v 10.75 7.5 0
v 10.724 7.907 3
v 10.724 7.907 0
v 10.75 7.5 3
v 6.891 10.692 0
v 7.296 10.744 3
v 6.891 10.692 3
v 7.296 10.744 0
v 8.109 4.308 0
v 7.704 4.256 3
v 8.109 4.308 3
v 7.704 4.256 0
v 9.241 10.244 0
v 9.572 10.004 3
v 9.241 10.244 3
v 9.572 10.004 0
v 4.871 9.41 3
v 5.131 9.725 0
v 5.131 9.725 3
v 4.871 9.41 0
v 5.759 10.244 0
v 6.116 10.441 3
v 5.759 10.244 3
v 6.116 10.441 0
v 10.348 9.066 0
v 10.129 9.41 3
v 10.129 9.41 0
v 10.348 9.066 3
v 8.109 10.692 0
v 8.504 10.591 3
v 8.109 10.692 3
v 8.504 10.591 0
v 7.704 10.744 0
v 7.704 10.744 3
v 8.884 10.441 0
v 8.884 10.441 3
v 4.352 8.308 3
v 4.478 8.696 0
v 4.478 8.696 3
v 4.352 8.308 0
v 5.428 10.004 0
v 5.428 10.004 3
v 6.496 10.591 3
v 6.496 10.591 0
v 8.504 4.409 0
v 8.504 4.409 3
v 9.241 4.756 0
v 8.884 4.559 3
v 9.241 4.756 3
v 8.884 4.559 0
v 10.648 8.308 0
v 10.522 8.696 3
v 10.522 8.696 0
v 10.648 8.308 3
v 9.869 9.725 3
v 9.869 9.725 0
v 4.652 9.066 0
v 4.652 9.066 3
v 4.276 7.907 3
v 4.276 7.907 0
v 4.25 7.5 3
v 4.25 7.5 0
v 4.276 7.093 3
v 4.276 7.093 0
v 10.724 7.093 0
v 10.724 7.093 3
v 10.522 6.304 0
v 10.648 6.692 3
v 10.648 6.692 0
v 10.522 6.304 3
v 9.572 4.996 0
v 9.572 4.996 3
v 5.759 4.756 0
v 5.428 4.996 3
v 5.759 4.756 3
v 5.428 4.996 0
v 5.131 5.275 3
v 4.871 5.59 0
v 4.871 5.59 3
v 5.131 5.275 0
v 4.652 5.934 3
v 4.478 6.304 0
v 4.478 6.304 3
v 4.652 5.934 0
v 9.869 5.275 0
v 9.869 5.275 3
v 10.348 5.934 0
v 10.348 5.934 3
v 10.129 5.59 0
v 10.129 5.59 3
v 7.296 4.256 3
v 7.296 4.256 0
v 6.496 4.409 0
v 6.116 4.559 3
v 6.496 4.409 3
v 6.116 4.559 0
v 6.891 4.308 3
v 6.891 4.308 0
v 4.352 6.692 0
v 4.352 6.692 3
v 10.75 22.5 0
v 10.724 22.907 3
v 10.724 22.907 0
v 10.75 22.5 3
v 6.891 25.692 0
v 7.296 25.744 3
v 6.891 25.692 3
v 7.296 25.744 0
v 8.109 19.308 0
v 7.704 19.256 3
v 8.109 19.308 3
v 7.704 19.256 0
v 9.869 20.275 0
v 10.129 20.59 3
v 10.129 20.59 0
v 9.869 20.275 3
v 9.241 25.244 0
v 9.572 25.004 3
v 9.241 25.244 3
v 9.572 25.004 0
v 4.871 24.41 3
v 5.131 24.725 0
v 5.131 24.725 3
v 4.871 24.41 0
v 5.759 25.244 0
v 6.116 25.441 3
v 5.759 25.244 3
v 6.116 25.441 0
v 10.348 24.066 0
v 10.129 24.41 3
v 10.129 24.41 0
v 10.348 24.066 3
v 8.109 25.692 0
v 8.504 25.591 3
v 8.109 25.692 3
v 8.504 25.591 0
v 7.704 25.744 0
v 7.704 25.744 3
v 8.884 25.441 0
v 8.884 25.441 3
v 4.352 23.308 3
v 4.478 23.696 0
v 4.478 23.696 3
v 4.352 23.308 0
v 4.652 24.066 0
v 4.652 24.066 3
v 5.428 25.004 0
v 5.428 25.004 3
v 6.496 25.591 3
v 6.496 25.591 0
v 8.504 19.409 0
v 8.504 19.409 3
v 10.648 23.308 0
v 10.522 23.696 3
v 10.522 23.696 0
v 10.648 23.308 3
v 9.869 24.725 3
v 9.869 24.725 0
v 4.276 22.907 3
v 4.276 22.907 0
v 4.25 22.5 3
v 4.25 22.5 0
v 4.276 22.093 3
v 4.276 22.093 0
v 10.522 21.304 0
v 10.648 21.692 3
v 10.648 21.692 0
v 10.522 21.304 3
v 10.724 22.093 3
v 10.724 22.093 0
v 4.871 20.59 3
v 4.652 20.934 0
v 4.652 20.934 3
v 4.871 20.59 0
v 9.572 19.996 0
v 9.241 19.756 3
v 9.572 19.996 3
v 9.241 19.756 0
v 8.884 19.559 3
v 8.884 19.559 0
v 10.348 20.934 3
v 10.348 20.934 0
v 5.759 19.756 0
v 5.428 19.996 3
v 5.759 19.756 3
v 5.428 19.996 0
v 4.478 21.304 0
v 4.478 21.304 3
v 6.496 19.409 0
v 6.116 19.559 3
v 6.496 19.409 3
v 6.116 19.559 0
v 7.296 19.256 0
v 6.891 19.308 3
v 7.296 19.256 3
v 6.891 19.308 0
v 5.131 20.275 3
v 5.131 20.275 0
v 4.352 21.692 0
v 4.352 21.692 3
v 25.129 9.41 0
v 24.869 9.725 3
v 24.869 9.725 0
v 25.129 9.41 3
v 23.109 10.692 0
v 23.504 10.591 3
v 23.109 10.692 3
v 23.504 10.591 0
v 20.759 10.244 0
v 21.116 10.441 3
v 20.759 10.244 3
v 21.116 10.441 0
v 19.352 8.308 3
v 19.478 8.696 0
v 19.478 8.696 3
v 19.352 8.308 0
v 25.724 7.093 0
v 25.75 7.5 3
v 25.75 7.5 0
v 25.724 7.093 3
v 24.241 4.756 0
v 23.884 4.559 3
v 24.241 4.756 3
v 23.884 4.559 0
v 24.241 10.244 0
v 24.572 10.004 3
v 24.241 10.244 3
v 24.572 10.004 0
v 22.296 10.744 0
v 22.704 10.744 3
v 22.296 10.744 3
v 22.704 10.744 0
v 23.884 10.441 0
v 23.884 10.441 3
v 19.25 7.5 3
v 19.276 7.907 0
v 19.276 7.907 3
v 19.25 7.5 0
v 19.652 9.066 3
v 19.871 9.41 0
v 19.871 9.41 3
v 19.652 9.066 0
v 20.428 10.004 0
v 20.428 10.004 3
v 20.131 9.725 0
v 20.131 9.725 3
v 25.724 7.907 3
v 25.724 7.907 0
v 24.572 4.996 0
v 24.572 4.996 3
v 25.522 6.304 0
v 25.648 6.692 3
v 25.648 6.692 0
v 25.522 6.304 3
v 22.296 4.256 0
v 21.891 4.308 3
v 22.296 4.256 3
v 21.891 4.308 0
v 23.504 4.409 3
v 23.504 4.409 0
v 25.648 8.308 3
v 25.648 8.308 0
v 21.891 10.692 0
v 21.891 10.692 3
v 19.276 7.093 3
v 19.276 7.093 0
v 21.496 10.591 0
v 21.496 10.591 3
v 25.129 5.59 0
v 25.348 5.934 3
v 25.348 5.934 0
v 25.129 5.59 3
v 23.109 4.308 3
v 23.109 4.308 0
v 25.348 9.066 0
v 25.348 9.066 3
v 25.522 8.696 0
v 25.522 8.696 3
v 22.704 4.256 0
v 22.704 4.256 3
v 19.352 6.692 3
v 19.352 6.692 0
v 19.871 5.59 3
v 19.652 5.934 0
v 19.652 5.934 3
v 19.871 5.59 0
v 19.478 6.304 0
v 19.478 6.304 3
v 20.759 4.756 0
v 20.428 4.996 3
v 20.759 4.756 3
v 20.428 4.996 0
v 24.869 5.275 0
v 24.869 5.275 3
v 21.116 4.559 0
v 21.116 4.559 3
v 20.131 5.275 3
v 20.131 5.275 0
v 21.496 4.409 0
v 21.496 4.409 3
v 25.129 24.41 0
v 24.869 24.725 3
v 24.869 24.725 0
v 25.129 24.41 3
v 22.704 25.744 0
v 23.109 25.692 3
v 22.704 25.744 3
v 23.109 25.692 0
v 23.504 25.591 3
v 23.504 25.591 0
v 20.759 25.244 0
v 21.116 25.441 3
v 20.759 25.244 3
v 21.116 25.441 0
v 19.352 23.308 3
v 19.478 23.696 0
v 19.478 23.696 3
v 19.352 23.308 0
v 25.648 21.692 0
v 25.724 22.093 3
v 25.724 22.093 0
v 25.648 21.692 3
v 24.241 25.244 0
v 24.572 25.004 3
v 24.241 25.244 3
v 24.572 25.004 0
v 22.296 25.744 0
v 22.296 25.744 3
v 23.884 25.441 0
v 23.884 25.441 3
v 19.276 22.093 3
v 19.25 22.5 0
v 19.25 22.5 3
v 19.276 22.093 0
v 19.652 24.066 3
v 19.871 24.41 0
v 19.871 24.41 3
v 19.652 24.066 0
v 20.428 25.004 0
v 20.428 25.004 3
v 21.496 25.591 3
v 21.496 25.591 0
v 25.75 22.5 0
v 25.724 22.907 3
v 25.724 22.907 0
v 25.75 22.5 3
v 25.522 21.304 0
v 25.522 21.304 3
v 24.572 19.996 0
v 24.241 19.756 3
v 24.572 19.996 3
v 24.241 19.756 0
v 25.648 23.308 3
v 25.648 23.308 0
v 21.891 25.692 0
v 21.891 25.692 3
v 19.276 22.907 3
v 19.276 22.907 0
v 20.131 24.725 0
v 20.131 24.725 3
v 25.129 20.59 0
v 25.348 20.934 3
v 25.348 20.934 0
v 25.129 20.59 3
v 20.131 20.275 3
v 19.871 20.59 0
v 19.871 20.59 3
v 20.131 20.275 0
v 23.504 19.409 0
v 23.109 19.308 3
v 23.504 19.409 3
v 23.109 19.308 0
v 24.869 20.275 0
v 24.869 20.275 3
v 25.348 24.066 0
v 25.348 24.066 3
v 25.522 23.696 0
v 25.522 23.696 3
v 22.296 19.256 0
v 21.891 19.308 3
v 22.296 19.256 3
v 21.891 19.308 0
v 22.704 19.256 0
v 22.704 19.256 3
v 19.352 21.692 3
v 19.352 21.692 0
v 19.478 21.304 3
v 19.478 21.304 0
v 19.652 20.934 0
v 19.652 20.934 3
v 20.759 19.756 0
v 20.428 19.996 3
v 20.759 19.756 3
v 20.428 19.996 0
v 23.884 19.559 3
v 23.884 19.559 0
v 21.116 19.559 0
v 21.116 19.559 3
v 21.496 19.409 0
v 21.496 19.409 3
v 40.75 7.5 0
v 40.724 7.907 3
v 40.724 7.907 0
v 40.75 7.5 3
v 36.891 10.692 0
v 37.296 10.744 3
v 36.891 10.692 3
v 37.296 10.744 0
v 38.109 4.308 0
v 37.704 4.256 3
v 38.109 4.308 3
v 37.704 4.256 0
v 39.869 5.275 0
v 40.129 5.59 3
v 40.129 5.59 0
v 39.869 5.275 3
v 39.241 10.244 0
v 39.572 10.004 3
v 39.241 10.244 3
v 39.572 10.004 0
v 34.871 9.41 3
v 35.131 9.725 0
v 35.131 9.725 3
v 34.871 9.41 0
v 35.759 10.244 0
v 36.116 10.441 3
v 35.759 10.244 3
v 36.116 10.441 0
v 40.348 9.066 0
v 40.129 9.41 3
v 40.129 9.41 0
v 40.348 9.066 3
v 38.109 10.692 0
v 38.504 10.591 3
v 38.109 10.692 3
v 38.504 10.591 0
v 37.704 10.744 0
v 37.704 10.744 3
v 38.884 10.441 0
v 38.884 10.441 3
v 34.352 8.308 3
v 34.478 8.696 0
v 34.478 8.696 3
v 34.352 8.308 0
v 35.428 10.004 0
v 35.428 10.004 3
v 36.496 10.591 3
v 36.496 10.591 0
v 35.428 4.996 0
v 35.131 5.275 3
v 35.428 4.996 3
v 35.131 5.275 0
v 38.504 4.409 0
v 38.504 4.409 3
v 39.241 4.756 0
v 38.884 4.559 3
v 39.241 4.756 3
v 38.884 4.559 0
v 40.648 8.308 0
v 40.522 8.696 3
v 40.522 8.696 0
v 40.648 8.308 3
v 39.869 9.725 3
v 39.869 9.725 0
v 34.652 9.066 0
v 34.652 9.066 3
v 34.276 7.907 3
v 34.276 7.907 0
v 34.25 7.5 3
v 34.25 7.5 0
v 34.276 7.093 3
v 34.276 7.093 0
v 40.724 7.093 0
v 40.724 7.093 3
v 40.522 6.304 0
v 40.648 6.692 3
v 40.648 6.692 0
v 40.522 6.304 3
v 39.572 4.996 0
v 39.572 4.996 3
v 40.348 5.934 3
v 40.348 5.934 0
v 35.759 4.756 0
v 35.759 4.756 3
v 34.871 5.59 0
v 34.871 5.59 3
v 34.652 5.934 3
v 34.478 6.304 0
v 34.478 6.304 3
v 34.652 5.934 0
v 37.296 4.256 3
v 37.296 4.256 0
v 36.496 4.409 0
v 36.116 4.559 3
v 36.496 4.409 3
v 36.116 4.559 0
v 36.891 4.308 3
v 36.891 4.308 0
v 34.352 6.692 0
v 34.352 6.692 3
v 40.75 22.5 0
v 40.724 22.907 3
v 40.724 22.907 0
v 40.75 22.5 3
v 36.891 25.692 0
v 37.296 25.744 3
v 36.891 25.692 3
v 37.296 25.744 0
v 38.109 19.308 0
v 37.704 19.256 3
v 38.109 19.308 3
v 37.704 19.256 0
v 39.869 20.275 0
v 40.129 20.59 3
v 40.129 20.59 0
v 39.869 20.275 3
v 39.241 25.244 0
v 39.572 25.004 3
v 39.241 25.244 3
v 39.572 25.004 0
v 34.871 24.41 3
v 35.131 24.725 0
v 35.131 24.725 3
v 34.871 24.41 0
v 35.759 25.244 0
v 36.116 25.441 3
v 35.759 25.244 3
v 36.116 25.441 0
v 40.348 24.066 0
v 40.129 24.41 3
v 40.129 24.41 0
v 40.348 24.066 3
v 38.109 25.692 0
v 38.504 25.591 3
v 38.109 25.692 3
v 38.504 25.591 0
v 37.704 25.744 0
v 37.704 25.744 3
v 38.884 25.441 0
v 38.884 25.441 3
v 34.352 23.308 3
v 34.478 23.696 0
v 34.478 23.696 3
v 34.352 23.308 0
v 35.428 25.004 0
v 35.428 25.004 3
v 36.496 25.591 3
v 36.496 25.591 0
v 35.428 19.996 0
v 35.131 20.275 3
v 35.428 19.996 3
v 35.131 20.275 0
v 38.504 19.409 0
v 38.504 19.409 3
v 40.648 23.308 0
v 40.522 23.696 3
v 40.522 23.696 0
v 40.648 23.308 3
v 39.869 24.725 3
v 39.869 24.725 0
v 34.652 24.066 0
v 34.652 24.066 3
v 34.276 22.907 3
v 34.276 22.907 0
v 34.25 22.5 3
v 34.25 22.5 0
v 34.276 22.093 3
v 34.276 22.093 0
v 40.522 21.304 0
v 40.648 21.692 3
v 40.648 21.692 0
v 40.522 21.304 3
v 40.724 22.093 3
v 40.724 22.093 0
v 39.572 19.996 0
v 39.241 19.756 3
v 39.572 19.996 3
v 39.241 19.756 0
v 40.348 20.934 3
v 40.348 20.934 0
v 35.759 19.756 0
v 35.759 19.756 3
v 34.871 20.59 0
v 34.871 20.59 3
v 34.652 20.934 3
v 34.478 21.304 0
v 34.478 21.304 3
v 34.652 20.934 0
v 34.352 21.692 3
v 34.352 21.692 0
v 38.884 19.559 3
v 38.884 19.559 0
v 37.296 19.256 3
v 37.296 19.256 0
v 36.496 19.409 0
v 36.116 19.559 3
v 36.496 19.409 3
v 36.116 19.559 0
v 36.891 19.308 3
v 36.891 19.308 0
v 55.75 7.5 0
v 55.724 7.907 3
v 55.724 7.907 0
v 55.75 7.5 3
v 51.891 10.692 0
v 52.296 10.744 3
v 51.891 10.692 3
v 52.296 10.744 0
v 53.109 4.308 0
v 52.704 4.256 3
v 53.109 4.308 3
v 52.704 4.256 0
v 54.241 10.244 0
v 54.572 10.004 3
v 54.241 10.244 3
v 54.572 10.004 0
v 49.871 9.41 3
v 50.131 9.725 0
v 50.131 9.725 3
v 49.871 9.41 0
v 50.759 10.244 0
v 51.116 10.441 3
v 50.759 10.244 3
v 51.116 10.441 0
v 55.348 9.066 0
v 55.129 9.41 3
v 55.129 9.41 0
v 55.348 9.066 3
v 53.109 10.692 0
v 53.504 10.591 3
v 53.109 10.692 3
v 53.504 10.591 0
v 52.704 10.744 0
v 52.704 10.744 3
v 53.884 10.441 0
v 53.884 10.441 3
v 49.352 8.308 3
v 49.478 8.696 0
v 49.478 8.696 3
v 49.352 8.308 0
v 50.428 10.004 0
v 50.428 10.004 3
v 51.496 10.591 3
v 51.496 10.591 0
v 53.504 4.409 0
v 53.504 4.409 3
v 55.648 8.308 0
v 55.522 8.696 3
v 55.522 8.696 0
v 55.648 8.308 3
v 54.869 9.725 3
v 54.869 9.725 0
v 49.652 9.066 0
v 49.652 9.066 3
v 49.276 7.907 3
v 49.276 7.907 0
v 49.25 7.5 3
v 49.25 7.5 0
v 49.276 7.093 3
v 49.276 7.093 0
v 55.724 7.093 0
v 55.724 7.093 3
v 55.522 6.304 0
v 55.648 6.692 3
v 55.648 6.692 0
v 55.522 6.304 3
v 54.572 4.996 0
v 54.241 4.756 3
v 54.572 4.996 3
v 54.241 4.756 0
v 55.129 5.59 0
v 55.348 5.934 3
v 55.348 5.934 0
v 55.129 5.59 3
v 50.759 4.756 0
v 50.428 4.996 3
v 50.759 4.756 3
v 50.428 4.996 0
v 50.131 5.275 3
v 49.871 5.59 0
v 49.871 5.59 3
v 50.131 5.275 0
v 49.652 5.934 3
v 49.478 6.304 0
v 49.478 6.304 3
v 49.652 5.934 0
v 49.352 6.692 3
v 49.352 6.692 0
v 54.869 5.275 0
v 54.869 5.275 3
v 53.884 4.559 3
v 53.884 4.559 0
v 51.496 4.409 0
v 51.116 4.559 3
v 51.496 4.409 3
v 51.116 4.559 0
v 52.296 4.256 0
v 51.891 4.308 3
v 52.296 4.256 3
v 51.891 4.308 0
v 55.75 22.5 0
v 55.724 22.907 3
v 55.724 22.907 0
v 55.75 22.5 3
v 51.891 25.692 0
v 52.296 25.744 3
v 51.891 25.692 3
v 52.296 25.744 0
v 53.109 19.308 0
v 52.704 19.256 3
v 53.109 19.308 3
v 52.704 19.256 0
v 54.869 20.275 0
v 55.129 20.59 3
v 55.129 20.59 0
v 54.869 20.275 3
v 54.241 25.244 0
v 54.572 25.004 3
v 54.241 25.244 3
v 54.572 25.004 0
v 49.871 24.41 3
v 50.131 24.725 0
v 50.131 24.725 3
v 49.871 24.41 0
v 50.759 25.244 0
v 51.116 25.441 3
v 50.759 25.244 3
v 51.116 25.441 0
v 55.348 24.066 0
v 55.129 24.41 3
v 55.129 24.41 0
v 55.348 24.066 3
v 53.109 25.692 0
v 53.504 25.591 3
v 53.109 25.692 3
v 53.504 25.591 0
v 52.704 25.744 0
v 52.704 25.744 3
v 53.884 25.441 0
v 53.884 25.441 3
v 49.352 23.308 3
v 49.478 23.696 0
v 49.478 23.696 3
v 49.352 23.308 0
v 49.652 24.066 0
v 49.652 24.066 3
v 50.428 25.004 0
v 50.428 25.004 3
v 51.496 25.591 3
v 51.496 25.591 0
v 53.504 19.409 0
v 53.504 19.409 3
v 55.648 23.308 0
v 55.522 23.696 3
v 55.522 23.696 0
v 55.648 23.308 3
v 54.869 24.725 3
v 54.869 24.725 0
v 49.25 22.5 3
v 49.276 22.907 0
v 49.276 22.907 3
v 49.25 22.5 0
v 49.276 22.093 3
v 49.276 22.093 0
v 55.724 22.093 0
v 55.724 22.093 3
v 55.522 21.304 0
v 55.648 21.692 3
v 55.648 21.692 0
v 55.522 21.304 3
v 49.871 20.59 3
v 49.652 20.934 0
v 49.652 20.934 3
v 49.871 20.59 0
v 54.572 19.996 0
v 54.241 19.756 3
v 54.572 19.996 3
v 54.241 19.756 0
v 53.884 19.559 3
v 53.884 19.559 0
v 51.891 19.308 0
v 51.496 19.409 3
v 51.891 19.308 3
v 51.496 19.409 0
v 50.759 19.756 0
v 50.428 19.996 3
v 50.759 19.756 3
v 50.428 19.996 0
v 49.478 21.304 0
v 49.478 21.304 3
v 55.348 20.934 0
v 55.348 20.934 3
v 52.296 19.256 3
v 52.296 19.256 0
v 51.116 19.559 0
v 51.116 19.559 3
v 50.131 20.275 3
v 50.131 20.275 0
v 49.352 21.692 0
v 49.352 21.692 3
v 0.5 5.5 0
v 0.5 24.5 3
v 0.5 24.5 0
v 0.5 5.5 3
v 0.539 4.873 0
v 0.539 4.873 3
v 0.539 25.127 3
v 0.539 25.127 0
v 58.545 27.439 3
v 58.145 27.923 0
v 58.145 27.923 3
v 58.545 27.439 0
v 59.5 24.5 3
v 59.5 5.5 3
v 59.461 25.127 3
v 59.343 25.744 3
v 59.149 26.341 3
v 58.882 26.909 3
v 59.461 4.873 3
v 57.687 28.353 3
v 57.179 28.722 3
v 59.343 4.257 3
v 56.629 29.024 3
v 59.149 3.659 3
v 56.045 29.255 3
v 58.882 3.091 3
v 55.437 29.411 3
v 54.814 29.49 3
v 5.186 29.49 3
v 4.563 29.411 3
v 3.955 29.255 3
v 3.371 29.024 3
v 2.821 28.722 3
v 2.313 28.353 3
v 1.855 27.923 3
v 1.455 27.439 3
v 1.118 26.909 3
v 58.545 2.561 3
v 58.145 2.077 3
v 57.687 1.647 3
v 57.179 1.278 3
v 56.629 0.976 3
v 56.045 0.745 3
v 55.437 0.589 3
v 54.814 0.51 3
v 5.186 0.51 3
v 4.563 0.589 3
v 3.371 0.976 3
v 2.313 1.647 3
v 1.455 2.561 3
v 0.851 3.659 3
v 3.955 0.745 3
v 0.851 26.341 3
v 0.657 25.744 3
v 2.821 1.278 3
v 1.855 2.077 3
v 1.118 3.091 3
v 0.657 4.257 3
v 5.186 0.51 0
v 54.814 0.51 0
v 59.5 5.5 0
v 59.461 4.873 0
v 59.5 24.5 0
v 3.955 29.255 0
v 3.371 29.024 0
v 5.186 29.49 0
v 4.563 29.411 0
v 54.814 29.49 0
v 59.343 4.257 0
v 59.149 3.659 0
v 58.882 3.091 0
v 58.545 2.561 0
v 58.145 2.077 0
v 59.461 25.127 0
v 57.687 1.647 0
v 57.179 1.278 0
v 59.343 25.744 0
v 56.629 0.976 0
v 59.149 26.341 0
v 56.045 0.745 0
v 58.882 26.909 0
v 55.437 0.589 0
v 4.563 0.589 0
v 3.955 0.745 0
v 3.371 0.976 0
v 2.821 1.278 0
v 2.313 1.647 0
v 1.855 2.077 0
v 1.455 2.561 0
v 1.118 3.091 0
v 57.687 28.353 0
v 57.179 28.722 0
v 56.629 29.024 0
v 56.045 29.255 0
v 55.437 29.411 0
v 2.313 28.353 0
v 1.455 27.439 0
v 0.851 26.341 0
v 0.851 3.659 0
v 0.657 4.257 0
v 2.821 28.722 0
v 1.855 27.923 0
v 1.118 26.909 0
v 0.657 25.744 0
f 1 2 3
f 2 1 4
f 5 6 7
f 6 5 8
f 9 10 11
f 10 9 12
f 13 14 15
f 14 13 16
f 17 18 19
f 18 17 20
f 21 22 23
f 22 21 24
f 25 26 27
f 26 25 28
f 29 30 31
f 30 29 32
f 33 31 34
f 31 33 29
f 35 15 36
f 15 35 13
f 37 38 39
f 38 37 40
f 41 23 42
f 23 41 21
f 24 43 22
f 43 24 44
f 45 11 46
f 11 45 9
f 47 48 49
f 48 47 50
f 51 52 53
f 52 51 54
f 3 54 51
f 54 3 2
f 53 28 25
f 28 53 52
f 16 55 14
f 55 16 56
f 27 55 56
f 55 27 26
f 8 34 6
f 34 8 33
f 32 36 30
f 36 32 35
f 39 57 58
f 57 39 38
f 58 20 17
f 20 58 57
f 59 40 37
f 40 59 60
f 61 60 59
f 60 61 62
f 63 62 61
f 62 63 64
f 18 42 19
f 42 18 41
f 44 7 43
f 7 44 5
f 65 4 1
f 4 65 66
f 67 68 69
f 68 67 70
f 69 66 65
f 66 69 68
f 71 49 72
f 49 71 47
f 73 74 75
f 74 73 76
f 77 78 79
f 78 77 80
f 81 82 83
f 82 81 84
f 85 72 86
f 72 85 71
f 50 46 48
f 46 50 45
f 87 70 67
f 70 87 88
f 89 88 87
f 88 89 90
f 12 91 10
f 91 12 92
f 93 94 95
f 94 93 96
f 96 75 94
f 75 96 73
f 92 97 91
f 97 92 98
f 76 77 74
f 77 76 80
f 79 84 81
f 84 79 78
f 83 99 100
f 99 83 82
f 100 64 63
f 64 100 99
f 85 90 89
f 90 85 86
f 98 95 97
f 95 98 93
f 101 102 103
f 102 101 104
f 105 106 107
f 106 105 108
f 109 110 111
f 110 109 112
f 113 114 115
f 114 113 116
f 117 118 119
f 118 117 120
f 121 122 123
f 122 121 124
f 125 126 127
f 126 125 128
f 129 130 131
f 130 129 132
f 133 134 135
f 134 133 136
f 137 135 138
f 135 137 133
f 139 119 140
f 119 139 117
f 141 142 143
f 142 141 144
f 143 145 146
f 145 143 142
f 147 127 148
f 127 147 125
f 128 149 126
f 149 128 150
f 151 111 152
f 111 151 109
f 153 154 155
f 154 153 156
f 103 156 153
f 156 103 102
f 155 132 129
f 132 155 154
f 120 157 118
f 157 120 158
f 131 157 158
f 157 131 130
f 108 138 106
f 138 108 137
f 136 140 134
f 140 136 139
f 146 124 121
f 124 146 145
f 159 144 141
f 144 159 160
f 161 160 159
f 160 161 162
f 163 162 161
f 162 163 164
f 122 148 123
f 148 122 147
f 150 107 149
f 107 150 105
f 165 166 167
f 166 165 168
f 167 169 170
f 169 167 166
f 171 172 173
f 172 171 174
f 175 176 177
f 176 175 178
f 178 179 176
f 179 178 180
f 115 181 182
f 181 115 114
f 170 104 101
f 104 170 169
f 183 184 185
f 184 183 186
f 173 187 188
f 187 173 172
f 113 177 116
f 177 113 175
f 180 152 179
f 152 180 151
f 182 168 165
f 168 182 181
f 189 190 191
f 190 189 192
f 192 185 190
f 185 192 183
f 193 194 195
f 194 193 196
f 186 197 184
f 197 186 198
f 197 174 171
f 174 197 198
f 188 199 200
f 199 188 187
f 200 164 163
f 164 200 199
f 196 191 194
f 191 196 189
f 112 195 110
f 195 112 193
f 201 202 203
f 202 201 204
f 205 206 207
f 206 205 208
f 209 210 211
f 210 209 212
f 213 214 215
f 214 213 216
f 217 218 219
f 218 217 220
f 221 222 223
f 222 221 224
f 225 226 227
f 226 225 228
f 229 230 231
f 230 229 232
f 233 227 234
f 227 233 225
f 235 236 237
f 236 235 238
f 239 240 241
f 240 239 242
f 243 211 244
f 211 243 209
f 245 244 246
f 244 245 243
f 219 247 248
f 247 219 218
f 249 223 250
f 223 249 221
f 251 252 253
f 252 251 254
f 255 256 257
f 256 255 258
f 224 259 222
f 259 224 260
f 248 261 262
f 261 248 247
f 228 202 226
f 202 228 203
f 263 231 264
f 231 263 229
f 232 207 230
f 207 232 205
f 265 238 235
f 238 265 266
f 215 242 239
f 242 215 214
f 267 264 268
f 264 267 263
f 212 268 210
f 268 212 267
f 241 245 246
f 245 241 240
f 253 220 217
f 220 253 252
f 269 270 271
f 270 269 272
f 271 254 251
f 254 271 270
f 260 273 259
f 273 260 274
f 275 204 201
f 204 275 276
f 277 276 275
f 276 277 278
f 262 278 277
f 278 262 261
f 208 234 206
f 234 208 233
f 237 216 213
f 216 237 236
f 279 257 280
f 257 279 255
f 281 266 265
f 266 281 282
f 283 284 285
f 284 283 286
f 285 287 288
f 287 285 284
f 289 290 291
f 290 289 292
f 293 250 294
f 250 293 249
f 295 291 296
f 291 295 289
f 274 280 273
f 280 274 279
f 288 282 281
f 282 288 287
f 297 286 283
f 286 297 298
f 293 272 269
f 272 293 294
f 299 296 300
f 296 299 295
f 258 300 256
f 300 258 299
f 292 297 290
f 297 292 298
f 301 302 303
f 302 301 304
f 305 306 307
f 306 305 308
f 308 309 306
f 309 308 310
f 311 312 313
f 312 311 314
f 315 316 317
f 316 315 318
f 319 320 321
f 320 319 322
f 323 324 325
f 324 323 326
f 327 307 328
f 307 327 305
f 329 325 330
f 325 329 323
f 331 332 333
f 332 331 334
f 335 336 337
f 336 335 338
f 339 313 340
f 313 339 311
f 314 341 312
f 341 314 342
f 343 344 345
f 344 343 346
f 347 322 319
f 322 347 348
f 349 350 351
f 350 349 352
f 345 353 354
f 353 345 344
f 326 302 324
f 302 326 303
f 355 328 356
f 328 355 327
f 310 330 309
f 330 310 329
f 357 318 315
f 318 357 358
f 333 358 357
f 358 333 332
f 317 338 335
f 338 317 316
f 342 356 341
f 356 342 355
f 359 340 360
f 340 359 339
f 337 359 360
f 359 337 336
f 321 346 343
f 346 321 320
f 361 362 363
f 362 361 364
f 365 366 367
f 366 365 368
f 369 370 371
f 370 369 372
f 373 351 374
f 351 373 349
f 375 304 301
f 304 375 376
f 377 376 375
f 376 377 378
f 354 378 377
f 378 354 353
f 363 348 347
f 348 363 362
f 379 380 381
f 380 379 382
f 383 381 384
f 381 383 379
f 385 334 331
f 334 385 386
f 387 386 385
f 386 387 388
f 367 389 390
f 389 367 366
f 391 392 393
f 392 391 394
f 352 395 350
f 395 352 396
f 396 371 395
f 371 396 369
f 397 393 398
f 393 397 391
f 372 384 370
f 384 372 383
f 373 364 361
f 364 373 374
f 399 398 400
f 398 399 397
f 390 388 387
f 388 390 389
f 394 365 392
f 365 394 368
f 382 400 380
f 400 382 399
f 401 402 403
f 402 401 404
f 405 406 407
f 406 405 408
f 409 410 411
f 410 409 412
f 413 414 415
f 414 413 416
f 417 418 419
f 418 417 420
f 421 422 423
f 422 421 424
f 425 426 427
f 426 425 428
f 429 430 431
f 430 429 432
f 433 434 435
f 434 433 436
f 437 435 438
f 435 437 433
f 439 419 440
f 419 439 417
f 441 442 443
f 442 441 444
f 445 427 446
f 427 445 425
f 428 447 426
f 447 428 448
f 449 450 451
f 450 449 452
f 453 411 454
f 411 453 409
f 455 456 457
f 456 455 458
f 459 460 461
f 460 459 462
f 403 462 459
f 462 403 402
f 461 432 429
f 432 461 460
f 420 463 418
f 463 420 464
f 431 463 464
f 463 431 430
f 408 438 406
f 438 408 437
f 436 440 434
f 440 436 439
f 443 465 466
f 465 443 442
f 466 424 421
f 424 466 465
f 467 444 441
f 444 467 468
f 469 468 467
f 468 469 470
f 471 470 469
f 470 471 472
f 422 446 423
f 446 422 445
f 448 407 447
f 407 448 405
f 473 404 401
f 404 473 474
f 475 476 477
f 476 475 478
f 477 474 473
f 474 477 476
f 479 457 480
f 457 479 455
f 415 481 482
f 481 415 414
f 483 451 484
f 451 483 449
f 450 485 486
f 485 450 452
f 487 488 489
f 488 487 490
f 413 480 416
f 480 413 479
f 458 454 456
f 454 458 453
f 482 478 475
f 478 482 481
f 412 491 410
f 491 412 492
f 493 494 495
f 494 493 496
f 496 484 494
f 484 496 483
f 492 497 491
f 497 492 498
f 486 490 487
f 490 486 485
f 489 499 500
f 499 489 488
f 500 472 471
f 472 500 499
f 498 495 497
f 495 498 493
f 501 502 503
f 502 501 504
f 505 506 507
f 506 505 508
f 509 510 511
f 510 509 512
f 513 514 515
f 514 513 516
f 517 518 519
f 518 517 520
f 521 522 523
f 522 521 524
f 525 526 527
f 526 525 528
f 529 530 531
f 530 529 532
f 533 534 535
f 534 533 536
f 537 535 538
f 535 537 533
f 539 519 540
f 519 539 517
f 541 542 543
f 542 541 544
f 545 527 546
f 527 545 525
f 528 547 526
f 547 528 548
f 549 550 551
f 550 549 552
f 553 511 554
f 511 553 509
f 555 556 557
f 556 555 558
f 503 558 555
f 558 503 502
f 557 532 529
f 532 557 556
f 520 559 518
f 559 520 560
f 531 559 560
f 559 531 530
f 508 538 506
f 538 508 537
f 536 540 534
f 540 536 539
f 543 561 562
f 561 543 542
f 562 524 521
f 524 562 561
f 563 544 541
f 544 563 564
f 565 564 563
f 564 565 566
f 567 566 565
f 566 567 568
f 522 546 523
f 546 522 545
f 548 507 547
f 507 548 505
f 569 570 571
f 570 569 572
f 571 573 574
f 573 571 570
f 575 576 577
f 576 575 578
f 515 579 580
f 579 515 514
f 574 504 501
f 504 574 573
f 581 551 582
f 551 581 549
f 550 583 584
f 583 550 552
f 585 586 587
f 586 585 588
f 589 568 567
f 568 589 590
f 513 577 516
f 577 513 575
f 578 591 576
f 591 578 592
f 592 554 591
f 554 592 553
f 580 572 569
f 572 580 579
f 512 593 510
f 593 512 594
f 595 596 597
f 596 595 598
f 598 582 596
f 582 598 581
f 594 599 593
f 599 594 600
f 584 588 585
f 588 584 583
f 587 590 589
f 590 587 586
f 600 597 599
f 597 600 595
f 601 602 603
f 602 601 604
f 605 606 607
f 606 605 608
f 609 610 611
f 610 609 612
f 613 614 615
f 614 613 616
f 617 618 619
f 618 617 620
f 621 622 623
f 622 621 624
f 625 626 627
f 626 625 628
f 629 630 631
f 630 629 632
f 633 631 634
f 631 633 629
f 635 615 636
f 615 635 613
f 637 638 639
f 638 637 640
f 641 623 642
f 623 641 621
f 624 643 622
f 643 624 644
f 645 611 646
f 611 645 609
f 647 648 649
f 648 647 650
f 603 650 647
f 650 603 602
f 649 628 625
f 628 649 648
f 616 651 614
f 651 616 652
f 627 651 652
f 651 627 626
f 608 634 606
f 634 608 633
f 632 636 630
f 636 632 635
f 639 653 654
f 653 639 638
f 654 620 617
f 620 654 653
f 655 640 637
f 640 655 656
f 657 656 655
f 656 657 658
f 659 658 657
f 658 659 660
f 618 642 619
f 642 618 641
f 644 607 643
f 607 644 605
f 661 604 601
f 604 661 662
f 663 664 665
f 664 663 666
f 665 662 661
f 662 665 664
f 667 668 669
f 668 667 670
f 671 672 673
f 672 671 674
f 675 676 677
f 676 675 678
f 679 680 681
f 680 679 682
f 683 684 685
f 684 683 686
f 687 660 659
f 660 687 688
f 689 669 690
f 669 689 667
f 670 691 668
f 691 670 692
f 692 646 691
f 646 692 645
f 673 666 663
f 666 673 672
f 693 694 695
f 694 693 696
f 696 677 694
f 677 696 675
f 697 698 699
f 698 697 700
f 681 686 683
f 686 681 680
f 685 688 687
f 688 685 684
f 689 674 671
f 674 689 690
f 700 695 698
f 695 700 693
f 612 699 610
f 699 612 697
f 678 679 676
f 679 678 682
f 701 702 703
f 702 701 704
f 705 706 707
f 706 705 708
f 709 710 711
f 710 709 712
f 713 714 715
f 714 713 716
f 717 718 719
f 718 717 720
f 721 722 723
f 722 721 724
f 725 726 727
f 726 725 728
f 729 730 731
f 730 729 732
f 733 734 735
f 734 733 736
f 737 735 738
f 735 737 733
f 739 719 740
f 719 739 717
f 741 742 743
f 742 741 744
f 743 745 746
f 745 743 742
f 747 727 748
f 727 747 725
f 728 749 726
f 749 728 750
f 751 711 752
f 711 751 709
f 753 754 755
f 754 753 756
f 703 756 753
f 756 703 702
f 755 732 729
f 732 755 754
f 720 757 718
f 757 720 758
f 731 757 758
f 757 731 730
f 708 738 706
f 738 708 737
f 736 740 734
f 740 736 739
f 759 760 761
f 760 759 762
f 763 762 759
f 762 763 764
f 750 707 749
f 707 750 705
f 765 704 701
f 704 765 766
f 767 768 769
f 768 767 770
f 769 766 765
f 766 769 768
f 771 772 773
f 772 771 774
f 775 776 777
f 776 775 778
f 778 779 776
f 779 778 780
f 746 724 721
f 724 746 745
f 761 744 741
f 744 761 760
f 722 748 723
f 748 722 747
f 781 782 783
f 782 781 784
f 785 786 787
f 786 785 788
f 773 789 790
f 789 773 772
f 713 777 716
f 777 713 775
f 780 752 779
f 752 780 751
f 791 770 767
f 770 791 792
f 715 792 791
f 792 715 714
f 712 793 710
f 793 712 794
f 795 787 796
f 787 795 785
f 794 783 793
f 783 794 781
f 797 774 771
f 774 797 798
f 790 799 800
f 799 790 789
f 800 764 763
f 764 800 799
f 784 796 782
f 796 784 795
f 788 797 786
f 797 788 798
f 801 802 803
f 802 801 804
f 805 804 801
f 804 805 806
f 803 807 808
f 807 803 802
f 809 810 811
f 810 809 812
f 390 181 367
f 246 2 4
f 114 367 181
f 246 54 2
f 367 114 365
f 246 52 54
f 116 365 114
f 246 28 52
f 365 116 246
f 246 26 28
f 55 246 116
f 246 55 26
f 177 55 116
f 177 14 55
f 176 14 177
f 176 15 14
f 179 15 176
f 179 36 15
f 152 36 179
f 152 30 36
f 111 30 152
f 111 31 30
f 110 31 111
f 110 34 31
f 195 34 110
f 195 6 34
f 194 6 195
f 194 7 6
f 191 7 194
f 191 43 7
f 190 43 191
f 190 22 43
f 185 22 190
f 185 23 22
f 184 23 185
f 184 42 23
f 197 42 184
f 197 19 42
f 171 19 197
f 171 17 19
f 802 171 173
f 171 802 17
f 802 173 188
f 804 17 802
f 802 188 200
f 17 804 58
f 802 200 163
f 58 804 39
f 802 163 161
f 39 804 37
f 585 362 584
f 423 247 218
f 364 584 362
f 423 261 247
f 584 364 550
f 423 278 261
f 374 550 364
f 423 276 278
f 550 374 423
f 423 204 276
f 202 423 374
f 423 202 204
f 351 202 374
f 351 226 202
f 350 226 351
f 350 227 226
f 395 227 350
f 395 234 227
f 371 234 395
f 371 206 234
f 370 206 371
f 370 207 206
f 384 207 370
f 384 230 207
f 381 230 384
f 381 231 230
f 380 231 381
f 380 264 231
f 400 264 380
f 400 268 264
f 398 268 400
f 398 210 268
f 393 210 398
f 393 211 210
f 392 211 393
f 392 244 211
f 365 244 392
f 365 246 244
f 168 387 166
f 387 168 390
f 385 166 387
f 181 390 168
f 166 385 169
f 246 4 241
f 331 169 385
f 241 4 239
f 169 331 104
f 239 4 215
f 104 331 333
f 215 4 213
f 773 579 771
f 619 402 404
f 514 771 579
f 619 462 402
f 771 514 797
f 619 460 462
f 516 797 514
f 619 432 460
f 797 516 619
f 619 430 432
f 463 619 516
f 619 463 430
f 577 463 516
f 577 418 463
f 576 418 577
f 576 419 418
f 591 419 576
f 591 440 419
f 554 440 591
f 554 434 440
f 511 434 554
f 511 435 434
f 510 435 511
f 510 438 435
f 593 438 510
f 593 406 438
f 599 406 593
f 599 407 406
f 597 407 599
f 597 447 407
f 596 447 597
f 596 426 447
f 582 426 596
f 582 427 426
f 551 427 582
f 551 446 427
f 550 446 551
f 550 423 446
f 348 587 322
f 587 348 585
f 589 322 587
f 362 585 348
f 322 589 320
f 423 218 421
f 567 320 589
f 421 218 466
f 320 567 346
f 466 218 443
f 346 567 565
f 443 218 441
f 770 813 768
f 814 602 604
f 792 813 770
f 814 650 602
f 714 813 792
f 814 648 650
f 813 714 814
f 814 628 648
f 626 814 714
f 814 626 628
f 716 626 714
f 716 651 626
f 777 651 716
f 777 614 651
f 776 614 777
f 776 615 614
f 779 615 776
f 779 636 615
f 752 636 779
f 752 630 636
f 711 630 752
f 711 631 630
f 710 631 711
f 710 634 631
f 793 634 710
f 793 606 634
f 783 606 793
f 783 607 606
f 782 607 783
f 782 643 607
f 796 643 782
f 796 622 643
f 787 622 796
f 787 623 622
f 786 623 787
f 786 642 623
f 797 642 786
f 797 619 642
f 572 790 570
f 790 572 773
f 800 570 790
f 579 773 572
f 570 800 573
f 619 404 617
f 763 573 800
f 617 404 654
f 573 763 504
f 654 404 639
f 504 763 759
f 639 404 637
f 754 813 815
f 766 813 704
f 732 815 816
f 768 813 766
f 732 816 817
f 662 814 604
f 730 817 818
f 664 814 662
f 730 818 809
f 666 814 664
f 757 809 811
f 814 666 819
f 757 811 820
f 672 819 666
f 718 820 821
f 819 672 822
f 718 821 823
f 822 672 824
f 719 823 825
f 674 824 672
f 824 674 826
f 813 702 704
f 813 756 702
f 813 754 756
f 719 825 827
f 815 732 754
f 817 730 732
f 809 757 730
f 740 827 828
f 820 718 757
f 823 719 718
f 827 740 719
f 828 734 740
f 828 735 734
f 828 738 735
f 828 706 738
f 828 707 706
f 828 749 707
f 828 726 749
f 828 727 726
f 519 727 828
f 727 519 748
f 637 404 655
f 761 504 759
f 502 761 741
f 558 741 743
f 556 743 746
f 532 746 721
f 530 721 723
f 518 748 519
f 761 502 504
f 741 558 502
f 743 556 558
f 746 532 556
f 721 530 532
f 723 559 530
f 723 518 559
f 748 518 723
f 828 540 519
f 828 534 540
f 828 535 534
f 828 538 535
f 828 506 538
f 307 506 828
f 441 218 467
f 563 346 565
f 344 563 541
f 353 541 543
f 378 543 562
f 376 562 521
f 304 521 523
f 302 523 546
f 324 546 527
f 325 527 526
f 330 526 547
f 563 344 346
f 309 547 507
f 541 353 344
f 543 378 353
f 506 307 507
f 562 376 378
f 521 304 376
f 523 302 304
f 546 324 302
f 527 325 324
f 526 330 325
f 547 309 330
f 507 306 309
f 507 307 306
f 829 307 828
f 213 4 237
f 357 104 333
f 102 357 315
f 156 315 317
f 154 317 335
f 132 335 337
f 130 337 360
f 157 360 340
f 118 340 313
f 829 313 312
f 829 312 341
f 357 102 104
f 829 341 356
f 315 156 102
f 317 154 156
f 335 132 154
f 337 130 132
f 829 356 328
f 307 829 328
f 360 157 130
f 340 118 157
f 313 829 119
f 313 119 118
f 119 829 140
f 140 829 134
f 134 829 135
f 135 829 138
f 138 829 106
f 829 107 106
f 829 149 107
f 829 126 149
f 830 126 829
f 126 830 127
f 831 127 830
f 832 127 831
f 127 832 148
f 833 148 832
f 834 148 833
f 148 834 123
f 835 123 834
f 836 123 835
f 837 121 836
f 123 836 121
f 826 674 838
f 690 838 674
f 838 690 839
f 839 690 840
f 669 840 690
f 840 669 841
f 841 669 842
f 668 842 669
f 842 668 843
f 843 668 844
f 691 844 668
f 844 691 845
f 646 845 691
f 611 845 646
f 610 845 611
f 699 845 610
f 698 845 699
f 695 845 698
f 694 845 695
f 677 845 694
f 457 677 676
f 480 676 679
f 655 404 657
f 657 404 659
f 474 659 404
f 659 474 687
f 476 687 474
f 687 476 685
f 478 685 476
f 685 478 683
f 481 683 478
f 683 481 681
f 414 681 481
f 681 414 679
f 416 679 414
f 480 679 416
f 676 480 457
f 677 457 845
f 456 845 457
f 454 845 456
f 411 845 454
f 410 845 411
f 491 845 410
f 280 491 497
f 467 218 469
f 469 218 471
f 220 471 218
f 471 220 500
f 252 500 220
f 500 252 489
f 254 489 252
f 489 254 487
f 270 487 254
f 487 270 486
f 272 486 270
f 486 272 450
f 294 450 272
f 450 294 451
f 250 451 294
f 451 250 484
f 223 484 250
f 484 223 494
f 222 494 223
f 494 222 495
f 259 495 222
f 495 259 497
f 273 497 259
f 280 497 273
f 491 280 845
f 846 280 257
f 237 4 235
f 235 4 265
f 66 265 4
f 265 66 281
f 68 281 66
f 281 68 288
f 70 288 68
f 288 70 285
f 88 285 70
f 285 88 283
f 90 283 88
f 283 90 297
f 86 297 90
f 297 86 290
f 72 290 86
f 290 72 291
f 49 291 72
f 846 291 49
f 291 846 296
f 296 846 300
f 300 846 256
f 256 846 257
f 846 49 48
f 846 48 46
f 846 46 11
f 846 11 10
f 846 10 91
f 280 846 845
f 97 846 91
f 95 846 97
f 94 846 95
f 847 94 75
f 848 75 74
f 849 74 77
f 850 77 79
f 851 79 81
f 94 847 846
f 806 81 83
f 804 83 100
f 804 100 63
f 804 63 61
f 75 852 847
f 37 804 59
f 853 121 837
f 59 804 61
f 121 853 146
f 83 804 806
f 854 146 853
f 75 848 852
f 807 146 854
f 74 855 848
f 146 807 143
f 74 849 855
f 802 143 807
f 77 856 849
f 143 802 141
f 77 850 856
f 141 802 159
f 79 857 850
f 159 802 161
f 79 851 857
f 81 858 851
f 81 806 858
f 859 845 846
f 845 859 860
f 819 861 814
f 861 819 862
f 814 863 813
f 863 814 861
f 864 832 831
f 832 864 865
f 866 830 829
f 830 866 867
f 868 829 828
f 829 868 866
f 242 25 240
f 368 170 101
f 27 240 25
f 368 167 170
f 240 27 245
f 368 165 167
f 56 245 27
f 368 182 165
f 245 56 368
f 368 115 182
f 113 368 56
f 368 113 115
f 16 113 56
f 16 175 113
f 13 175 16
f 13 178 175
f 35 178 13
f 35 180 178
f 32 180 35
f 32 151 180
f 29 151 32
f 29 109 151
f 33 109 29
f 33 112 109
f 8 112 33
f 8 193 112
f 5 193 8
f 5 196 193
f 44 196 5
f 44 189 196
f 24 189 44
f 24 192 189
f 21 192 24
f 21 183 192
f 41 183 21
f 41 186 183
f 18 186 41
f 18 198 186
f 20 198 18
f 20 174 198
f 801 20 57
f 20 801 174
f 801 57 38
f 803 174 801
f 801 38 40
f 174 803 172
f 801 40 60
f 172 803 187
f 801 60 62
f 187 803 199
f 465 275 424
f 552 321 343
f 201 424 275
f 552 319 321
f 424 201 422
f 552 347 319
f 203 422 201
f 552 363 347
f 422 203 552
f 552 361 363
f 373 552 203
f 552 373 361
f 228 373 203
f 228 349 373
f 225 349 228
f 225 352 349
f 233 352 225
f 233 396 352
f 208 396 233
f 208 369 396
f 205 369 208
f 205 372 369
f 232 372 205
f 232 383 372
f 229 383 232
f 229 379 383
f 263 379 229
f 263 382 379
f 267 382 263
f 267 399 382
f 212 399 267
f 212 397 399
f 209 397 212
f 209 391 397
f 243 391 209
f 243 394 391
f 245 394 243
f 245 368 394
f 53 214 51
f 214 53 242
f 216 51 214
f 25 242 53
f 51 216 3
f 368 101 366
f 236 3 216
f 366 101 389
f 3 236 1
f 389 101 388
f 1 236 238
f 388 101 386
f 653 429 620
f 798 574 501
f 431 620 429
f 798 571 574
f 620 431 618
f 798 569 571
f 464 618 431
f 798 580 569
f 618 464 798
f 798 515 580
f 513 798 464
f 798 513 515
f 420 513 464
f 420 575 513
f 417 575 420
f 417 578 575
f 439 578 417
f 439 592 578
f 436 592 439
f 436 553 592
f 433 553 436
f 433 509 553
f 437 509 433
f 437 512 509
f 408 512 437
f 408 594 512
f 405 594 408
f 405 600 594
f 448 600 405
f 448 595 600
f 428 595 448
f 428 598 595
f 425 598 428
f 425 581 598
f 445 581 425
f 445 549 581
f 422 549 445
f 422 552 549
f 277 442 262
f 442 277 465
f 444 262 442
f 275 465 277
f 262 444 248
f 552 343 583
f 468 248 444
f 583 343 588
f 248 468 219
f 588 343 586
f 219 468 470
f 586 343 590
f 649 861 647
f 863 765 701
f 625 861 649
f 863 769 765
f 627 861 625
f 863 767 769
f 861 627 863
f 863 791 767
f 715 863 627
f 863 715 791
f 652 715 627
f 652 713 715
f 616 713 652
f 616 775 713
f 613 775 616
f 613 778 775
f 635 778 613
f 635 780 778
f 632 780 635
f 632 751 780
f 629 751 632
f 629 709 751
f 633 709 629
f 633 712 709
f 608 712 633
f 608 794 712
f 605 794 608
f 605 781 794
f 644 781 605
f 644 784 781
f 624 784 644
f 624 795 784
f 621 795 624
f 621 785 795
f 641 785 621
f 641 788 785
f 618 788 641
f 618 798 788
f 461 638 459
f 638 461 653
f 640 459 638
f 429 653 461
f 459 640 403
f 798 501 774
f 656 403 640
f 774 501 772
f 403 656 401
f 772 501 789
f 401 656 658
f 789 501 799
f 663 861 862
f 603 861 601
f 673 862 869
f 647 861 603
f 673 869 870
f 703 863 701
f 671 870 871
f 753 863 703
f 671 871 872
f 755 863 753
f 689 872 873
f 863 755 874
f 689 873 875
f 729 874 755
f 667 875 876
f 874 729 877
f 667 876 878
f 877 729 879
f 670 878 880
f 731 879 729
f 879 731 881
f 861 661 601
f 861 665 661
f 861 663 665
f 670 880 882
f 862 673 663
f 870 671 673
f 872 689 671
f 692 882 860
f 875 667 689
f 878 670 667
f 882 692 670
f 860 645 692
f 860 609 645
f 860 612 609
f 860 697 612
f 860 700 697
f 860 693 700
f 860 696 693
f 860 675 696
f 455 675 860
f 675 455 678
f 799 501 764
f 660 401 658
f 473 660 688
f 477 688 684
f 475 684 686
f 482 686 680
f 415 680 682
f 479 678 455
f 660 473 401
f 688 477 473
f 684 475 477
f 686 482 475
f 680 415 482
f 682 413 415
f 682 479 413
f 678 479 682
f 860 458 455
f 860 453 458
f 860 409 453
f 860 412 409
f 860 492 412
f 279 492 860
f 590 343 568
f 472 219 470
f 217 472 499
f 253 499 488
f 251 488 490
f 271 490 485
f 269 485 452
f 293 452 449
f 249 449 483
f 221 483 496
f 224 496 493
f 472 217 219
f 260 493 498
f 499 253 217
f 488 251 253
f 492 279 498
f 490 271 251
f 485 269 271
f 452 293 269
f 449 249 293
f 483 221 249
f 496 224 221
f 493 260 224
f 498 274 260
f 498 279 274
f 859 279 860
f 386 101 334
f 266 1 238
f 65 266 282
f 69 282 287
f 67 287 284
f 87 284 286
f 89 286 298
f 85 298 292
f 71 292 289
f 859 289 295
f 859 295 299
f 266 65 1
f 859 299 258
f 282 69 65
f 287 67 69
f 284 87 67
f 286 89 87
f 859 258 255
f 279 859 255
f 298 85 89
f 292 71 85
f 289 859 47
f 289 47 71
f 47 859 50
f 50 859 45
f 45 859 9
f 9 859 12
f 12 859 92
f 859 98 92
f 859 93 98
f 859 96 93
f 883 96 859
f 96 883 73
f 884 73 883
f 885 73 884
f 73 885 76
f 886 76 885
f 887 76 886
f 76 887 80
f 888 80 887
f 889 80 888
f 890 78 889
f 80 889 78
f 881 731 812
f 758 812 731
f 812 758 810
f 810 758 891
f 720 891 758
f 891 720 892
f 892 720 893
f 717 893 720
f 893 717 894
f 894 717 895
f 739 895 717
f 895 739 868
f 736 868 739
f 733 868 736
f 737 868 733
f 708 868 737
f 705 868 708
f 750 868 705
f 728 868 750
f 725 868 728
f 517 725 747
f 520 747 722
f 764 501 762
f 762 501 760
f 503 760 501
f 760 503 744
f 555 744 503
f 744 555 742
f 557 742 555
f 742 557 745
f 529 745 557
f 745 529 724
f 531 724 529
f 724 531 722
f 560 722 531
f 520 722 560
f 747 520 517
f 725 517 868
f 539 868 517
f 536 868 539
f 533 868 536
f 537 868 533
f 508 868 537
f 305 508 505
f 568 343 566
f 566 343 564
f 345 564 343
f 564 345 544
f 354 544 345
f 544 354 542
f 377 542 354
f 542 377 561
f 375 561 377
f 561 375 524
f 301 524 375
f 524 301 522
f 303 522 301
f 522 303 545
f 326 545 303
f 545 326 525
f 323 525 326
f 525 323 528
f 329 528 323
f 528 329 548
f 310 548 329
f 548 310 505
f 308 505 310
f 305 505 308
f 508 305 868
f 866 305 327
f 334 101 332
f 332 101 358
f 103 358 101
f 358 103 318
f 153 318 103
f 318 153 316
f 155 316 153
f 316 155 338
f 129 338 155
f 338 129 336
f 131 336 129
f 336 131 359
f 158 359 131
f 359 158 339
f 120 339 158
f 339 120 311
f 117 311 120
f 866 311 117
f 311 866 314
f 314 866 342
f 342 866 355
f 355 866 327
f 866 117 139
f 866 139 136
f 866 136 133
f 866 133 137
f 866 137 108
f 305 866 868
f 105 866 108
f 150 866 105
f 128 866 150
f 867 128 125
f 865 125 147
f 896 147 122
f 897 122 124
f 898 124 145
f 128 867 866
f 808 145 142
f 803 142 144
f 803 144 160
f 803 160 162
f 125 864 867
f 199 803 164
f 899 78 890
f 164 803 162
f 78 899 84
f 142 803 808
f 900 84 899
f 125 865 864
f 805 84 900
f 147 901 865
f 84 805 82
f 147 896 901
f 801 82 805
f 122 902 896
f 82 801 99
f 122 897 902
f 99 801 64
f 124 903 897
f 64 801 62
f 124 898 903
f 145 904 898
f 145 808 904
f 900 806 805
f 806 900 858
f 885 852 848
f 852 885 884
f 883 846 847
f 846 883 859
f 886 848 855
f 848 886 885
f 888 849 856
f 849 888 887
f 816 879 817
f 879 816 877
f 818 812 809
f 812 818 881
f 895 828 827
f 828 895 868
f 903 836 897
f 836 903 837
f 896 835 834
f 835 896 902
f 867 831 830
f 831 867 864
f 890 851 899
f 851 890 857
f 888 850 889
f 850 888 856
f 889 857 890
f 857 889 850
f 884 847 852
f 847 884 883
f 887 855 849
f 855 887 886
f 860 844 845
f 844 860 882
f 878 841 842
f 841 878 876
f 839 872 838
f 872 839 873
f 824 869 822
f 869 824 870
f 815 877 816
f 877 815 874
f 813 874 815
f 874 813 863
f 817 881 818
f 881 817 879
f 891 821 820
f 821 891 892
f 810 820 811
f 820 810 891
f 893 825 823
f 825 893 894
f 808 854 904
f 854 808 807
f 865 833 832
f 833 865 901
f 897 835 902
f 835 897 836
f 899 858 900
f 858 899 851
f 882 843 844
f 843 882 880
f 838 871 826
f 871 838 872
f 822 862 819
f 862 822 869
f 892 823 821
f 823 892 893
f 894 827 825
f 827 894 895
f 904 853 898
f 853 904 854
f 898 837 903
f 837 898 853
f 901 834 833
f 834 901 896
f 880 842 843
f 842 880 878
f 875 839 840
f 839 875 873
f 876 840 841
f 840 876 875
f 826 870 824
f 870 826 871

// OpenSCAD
// Generated by SolidPython 1.1.3 on 2023-01-30 13:28:22
$fn = 50;


difference() {
	union() {
		translate(v = [30.0000000000, 15.0000000000, 0]) {
			rotate(a = [0, 0, 0]) {
				hull() {
					translate(v = [-24.5000000000, 9.5000000000, 0]) {
						rotate(a = [0, 0, 0]) {
							translate(v = [0, 0, 0]) {
								rotate(a = [0, 0, 0]) {
									cylinder(h = 3, r = 5);
								}
							}
						}
					}
					translate(v = [24.5000000000, 9.5000000000, 0]) {
						rotate(a = [0, 0, 0]) {
							translate(v = [0, 0, 0]) {
								rotate(a = [0, 0, 0]) {
									cylinder(h = 3, r = 5);
								}
							}
						}
					}
					translate(v = [-24.5000000000, -9.5000000000, 0]) {
						rotate(a = [0, 0, 0]) {
							translate(v = [0, 0, 0]) {
								rotate(a = [0, 0, 0]) {
									cylinder(h = 3, r = 5);
								}
							}
						}
					}
					translate(v = [24.5000000000, -9.5000000000, 0]) {
						rotate(a = [0, 0, 0]) {
							translate(v = [0, 0, 0]) {
								rotate(a = [0, 0, 0]) {
									cylinder(h = 3, r = 5);
								}
							}
						}
					}
				}
			}
		}
	}
	union() {
		translate(v = [7.5000000000, 7.5000000000, 0]) {
			rotate(a = [0, 0, 0]) {
				translate(v = [0, 0, -50]) {
					rotate(a = [0, 0, 0]) {
						cylinder(h = 100, r = 3.2500000000);
					}
				}
			}
		}
		translate(v = [7.5000000000, 22.5000000000, 0]) {
			rotate(a = [0, 0, 0]) {
				translate(v = [0, 0, -50]) {
					rotate(a = [0, 0, 0]) {
						cylinder(h = 100, r = 3.2500000000);
					}
				}
			}
		}
		translate(v = [22.5000000000, 7.5000000000, 0]) {
			rotate(a = [0, 0, 0]) {
				translate(v = [0, 0, -50]) {
					rotate(a = [0, 0, 0]) {
						cylinder(h = 100, r = 3.2500000000);
					}
				}
			}
		}
		translate(v = [22.5000000000, 22.5000000000, 0]) {
			rotate(a = [0, 0, 0]) {
				translate(v = [0, 0, -50]) {
					rotate(a = [0, 0, 0]) {
						cylinder(h = 100, r = 3.2500000000);
					}
				}
			}
		}
		translate(v = [37.5000000000, 7.5000000000, 0]) {
			rotate(a = [0, 0, 0]) {
				translate(v = [0, 0, -50]) {
					rotate(a = [0, 0, 0]) {
						cylinder(h = 100, r = 3.2500000000);
					}
				}
			}
		}
		translate(v = [37.5000000000, 22.5000000000, 0]) {
			rotate(a = [0, 0, 0]) {
				translate(v = [0, 0, -50]) {
					rotate(a = [0, 0, 0]) {
						cylinder(h = 100, r = 3.2500000000);
					}
				}
			}
		}
		translate(v = [52.5000000000, 7.5000000000, 0]) {
			rotate(a = [0, 0, 0]) {
				translate(v = [0, 0, -50]) {
					rotate(a = [0, 0, 0]) {
						cylinder(h = 100, r = 3.2500000000);
					}
				}
			}
		}
		translate(v = [52.5000000000, 22.5000000000, 0]) {
			rotate(a = [0, 0, 0]) {
				translate(v = [0, 0, -50]) {
					rotate(a = [0, 0, 0]) {
						cylinder(h = 100, r = 3.2500000000);
					}
				}
			}
		}
	}
}
/***********************************************
*********      SolidPython code:      **********
************************************************
 
from solid import *
import os
import subprocess

import oomB

import opsc_library_gen

mode = "laser"
#mode = "3d_print"

defined_objects = {}

radius_dict = {}
countersunk_dict = {}


def set_mode(m):
    global mode
    mode = m
    radius_dict['M6'] = 6.5/2
    radius_dict['M3'] = 3.3/2
    if mode == "laser":
        radius_dict['M6'] = 6/2
        radius_dict['M3'] = 3/2

    countersunk_dict['M3'] = {}
    countersunk_dict['M3']['little_rad'] = radius_dict['M3']
    countersunk_dict['M3']['big_rad'] = (5.5+0.6)/2
    if mode == "laser":
        countersunk_dict['M3']['big_rad'] = (4.75+0.6)/2
        countersunk_dict['M3']['little_rad'] = (4.75+0.6)/2

    countersunk_dict['M3']['height'] = 1.7


def opsc_make_object(filename, objects, save_type="none",resolution=50, layers = 1, tilediff = 200, mode="laser"):
    set_mode(mode)
    save_type = save_type.lower()
    os.makedirs(os.path.dirname(filename), exist_ok=True)
    final_object = opsc_get_object(objects)
    # Save the final object to the specified filename    
    scad_render_to_file(final_object, filename, file_header='$fn = %s;' % resolution, include_orig_code=True)
    if mode == "laser":
        filename_laser = filename.replace(".scad","-flat.scad")
        scad_render_to_file(getLaser(final_object, layers=layers, tilediff=tilediff), filename_laser, file_header='$fn = %s;' % resolution, include_orig_code=True)
        if save_type == "all":
            saveToAll(filename_laser)
        elif save_type == "dxf":
            saveToDxf(filename_laser)
    if save_type == "all":
        saveToAll(filename)
    elif save_type == "dxf":
        saveToDxf(filename)


def opsc_get_object(objects):
    # Create the solidpython objects
    positive_objects = [get_opsc_item(obj) for obj in objects if obj['type'] == 'positive']
    negative_objects = [get_opsc_item(obj) for obj in objects if obj['type'] == 'negative']
    # Union the positive objects
    positive_object = union()(*positive_objects)
    # Union the negative objects
    negative_object = union()(*negative_objects)
    # Create the final object by subtracting the negative objects from the positive objects
    return difference()(positive_object, negative_object)

def get_opsc_item(params):
    # A dictionary to map radius string values to numerical values
    #radius_dict = {'small': 5, 'medium': 10, 'large': 15}
    # An array of function names for basic shapes
    basic_shapes = ['cube', 'sphere', 'cylinder']
    
    # An array of function names for other shapes
    other_shapes = ['hole', 'slot', 'rounded_rectangle', 'countersunk']
    


    # Convert radius to r if present, and remove radius from the params dictionary
    if 'radius' in params:
        if isinstance(params['radius'], str):
            # Use the radius_dict to map the radius string value to a numerical value
            params['r'] = radius_dict[params['radius']]
        else:
            params['r'] = params['radius']
        del params['radius']
    

    # Check if the object type is a basic shape
    if params['shape'] in basic_shapes:
        # Remove shape and unexpected dictionary values
        allowed_keys = {'size', 'r', 'r1', 'r2', 'd', 'h', 'rw', 'rh', 'dw', 'dh'}
        shape_params = {k: v for k, v in params.items() if k in allowed_keys}

        # Call the corresponding function for the shape parameter, using ** notation to pass the shape_params dictionary as keyword arguments
        return get_opsc_transform(params,globals()[params['shape']](**shape_params))
    
    # If the object type is not a basic shape, check if it's a defined object or one of the other shapes
    elif params['shape'] in other_shapes:
        # Call the corresponding function for the shape parameter, passing the params dictionary as an argument
        p2 = copy.deepcopy(params)
        p2["pos"] = [0,0,0]
        return get_opsc_transform(params,globals()[params['shape']](p2))
    
    # If the object is not a basic shape or a defined object, try to import it from a .scad file
    else:
        obj = defined_objects[params['shape']]
        return get_opsc_transform(params,obj)

def get_opsc_transform(params, solid_obj):
    # Rotate the object based on the 'rot' field in the params dictionary, or the 'rotX', 'rotY', and 'rotZ' fields if 'rot' is not present
    rot = params.get('rot', [])
    if rot:
        rotX, rotY, rotZ = rot
    else:
        rotX = params.get('rotX', 0)
        rotY = params.get('rotY', 0)
        rotZ = params.get('rotZ', 0)
    solid_obj = rotate([rotX, rotY, rotZ])(solid_obj)

    # Translate the object based on the 'pos' field in the params dictionary, or the 'x', 'y', and 'z' fields if 'pos' is not present
    pos = params.get('pos', [])
    if pos:
        x, y, z = pos
    else:
        x = params.get('x', 0)
        y = params.get('y', 0)
        z = params.get('z', 0)
    solid_obj = translate([x, y, z])(solid_obj)
    return solid_obj


import random

def opsc_easy_array(type, shape, repeats, pos_start, shift_arr, **kwargs):
    for i in range(0,3):
        repeats.append(1)
        pos_start.append(0)
        shift_arr.append(0)
    return_objects = []

    for x in range(0,repeats[0]):
        for y in range(0,repeats[1]):
            for z in range(0,repeats[2]):
                return_objects.append(opsc_easy(type, shape, pos=[pos_start[0]+x*shift_arr[0],pos_start[1]+y*shift_arr[1],pos_start[2]+z*shift_arr[2]], **kwargs))
    return return_objects                



def opsc_easy(type, shape, **kwargs):
    obj = {
        'type': type,
        'shape': shape
    }
    for param in ['size', 'r', 'r1', 'r2', 'd', 'h', 'rw', 'rh', 'dw', 'dh', 'pos', 'x', 'y', 'z', 'rot', 'rotX', 'rotY', 'rotZ', "w"]:
        if param in kwargs:
            obj[param] = kwargs[param]
    return obj

def hole(params):
    p2 = copy.deepcopy(params)  
    # Check if the radius is a string and replace it with the corresponding value from the dictionary
    if isinstance(p2['r'], str):
        p2['r'] = radius_dict[p2['r']]
    
    # Set the height to 100 if not specified
    if 'h' not in p2:
        p2['h'] = 100
        p2["pos"] = [0,0,-50]
    p2["center"] = True
    # Create the cylinder object
    p2["shape"] = "cylinder"
    p2["type"] = "positive"

    return get_opsc_item(p2)

import copy

def countersunk(params):
    p2 = copy.deepcopy(params)
    counter_rad = p2['r']
    p2['r'] = radius_dict[p2['r']]
    hp = copy.deepcopy(p2)
    hp["type"] = "positive"
    hp["shape"] = "hole"
    del hp["rot"]
    hol = get_opsc_item(hp)
    
    cp = copy.deepcopy(p2)
    cp["h"] = countersunk_dict[counter_rad]["height"]
    cp["r2"] = countersunk_dict[counter_rad]["little_rad"]
    cp["r1"] = countersunk_dict[counter_rad]["big_rad"]
    del cp["r"]
    del cp["rot"]
    cp["type"] = "positive"
    cp["shape"] = "cylinder"
    cp["pos"] = [0,0,0]

    top = get_opsc_item(cp)
    return union()(hol,top)



def slot(params):  
    p2 = copy.deepcopy(params) 
    if isinstance(p2['r'], str):
        p2['r'] = radius_dict[p2['r']]
    p2["type"] = "positive"
    p2["shape"] = "hole"
    del p2["rot"]
    p2["pos"] = [0,0,0]
    left = copy.deepcopy(p2)
    right = copy.deepcopy(p2)
    left["pos"][0] = p2["w"] / 2 - p2["r"] 
    
    right["pos"][0] = -p2["w"] / 2 + p2["r"] 
    pass
    leftObj = get_opsc_item(left)
    rightObj = get_opsc_item(right)
    return hull()(leftObj, rightObj)

def rounded_rectangle(params):   
    p2 = copy.deepcopy(params) 
    p2["h"] = p2["size"][2]
    p2["pos"] = p2.get("pos", [0, 0, 0]) 
    p2["type"] = "positive"
    p2["shape"] = "hole"
    p2["pos"] = [0,0,0]
    
    if 'rot' in p2:
        del p2["rot"]   
    if 'r' not in p2:
        p2["r"] = 5 
    tl = copy.deepcopy(p2)
    tr = copy.deepcopy(p2)
    bl = copy.deepcopy(p2)
    br = copy.deepcopy(p2)
    tl["pos"][0] = -(p2["size"][0] - p2["r"]*2)/2
    tl["pos"][1] = (p2["size"][1] - p2["r"]*2)/2
    tr["pos"][0] = (p2["size"][0] - p2["r"]*2)/2
    tr["pos"][1] = (p2["size"][1] - p2["r"]*2)/2
    bl["pos"][0] = -(p2["size"][0] - p2["r"]*2)/2
    bl["pos"][1] = -(p2["size"][1] - p2["r"]*2)/2
    br["pos"][0] = (p2["size"][0] - p2["r"]*2)/2
    br["pos"][1] = -(p2["size"][1] - p2["r"]*2)/2
    del tl["size"]
    del tr["size"]
    del bl["size"]
    del br["size"]
    tlo = get_opsc_item(tl)
    tro = get_opsc_item(tr)
    blo = get_opsc_item(bl)
    bro = get_opsc_item(br)    
    return hull()(tlo, tro, blo, bro)



def import_scad_object(filename):
    # Import the .scad file and convert it to a solidpython object
    #filename = "parts"
    obj = import_scad(filename)
    return obj.main()
    


import os
import solid as solidpython

# A dictionary to store the defined objects


def load_scad_objects():
    opsc_library_gen.gen_library(defined_objects)

import random

def test(num_objects):
    objects = []
    for i in range(num_objects):
        # Choose a random shape
        #shape = random.choice(['cube', 'sphere', 'cylinder', 'hole', 'slot', "rounded_rectangle"])
        shape = random.choice(["rounded_rectangle"])

        # Choose a random type
        type = random.choice(['positive', 'negative'])
        
        # Create an empty object dictionary
        obj = {'shape': shape, 'type': type}
        
        # Set shape-specific parameters
        if obj['shape'] in ['cube']:
            obj['size'] =  [random.uniform(5, 15), random.uniform(5, 15), random.uniform(5, 15)]
        if obj['shape'] in ['rounded_rectangle']:
            obj['size'] =  [random.uniform(5, 15), random.uniform(5, 15), random.uniform(5, 15)]
            obj['r'] = random.uniform(0.5, 5)
        elif obj['shape'] == 'sphere':
            obj['r'] = random.uniform(5, 15)
        elif obj['shape'] in ['cylinder', 'hole']:
            obj['r'] = random.uniform(0.5, 5)
            obj['h'] = random.uniform(5, 15)
        elif obj['shape'] == 'slot':
            obj['r'] = random.uniform(0.5, 5)
            obj['h'] = random.uniform(5, 15)
            obj['w'] = random.uniform(5, 15)
        
        # Set a random position and rotation
        obj['pos'] = [random.uniform(-20, 20), random.uniform(-20, 20), random.uniform(-20, 20)]
        obj['rot'] = [random.uniform(-180, 180), random.uniform(-180, 180), random.uniform(-180, 180)]
        
        # Add the object to the list
        objects.append(obj)
    return objects

####### old file saving
def saveToAll(fileIn):
    saveToDxf(fileIn)
    saveToPng(fileIn)
    saveToStl(fileIn)
    saveToSvg(fileIn)

def saveToDxf(fileIn, fileOut="", copy_to_laser=True):
    if fileOut == "":
        fileOut = fileIn.replace(".scad",".dxf")
    saveToFile(fileIn, fileOut)


    
def saveToPng(fileIn, fileOut="",extra="--render"):
    if fileOut == "":
        fileOut = fileIn.replace(".scad",".png")
    saveToFile(fileIn, fileOut)

def saveToStl(fileIn, fileOut=""):
    if fileOut == "":
        fileOut = fileIn.replace(".scad",".stl")
    saveToFile(fileIn, fileOut)
    
def saveToSvg(fileIn, fileOut=""):
    if fileOut == "":
        fileOut = fileIn.replace(".scad",".svg")
    saveToFile(fileIn, fileOut)

def saveToFile(fileIn, fileOut,extra=""):
    #extra = extra + " --colorscheme Tomorrow"

    launchStr = 'openscad -o "' + fileOut + '"' + extra + ' "' + fileIn + '"'
    if ".png" in fileOut:
        launchStr = launchStr + " --render"
    print("            saveToFile launch string: " + launchStr)
    subprocess.run(launchStr)
    x=0

def getLaser(final_object,start=1.5,layers=1,thickness=3,tilediff=200):
        rv= []

        for x in range(layers):
            rv.append(translate([0,x*tilediff,0])(
                    projection()(
                        intersection()(translate([-500,-500,start+x*thickness])(cube(size=[1000,1000,0.1])),
                            final_object
                        )
                    )
            )
            )
            
        return union()(rv)

set_mode("laser")
load_scad_objects() 
 
************************************************/
